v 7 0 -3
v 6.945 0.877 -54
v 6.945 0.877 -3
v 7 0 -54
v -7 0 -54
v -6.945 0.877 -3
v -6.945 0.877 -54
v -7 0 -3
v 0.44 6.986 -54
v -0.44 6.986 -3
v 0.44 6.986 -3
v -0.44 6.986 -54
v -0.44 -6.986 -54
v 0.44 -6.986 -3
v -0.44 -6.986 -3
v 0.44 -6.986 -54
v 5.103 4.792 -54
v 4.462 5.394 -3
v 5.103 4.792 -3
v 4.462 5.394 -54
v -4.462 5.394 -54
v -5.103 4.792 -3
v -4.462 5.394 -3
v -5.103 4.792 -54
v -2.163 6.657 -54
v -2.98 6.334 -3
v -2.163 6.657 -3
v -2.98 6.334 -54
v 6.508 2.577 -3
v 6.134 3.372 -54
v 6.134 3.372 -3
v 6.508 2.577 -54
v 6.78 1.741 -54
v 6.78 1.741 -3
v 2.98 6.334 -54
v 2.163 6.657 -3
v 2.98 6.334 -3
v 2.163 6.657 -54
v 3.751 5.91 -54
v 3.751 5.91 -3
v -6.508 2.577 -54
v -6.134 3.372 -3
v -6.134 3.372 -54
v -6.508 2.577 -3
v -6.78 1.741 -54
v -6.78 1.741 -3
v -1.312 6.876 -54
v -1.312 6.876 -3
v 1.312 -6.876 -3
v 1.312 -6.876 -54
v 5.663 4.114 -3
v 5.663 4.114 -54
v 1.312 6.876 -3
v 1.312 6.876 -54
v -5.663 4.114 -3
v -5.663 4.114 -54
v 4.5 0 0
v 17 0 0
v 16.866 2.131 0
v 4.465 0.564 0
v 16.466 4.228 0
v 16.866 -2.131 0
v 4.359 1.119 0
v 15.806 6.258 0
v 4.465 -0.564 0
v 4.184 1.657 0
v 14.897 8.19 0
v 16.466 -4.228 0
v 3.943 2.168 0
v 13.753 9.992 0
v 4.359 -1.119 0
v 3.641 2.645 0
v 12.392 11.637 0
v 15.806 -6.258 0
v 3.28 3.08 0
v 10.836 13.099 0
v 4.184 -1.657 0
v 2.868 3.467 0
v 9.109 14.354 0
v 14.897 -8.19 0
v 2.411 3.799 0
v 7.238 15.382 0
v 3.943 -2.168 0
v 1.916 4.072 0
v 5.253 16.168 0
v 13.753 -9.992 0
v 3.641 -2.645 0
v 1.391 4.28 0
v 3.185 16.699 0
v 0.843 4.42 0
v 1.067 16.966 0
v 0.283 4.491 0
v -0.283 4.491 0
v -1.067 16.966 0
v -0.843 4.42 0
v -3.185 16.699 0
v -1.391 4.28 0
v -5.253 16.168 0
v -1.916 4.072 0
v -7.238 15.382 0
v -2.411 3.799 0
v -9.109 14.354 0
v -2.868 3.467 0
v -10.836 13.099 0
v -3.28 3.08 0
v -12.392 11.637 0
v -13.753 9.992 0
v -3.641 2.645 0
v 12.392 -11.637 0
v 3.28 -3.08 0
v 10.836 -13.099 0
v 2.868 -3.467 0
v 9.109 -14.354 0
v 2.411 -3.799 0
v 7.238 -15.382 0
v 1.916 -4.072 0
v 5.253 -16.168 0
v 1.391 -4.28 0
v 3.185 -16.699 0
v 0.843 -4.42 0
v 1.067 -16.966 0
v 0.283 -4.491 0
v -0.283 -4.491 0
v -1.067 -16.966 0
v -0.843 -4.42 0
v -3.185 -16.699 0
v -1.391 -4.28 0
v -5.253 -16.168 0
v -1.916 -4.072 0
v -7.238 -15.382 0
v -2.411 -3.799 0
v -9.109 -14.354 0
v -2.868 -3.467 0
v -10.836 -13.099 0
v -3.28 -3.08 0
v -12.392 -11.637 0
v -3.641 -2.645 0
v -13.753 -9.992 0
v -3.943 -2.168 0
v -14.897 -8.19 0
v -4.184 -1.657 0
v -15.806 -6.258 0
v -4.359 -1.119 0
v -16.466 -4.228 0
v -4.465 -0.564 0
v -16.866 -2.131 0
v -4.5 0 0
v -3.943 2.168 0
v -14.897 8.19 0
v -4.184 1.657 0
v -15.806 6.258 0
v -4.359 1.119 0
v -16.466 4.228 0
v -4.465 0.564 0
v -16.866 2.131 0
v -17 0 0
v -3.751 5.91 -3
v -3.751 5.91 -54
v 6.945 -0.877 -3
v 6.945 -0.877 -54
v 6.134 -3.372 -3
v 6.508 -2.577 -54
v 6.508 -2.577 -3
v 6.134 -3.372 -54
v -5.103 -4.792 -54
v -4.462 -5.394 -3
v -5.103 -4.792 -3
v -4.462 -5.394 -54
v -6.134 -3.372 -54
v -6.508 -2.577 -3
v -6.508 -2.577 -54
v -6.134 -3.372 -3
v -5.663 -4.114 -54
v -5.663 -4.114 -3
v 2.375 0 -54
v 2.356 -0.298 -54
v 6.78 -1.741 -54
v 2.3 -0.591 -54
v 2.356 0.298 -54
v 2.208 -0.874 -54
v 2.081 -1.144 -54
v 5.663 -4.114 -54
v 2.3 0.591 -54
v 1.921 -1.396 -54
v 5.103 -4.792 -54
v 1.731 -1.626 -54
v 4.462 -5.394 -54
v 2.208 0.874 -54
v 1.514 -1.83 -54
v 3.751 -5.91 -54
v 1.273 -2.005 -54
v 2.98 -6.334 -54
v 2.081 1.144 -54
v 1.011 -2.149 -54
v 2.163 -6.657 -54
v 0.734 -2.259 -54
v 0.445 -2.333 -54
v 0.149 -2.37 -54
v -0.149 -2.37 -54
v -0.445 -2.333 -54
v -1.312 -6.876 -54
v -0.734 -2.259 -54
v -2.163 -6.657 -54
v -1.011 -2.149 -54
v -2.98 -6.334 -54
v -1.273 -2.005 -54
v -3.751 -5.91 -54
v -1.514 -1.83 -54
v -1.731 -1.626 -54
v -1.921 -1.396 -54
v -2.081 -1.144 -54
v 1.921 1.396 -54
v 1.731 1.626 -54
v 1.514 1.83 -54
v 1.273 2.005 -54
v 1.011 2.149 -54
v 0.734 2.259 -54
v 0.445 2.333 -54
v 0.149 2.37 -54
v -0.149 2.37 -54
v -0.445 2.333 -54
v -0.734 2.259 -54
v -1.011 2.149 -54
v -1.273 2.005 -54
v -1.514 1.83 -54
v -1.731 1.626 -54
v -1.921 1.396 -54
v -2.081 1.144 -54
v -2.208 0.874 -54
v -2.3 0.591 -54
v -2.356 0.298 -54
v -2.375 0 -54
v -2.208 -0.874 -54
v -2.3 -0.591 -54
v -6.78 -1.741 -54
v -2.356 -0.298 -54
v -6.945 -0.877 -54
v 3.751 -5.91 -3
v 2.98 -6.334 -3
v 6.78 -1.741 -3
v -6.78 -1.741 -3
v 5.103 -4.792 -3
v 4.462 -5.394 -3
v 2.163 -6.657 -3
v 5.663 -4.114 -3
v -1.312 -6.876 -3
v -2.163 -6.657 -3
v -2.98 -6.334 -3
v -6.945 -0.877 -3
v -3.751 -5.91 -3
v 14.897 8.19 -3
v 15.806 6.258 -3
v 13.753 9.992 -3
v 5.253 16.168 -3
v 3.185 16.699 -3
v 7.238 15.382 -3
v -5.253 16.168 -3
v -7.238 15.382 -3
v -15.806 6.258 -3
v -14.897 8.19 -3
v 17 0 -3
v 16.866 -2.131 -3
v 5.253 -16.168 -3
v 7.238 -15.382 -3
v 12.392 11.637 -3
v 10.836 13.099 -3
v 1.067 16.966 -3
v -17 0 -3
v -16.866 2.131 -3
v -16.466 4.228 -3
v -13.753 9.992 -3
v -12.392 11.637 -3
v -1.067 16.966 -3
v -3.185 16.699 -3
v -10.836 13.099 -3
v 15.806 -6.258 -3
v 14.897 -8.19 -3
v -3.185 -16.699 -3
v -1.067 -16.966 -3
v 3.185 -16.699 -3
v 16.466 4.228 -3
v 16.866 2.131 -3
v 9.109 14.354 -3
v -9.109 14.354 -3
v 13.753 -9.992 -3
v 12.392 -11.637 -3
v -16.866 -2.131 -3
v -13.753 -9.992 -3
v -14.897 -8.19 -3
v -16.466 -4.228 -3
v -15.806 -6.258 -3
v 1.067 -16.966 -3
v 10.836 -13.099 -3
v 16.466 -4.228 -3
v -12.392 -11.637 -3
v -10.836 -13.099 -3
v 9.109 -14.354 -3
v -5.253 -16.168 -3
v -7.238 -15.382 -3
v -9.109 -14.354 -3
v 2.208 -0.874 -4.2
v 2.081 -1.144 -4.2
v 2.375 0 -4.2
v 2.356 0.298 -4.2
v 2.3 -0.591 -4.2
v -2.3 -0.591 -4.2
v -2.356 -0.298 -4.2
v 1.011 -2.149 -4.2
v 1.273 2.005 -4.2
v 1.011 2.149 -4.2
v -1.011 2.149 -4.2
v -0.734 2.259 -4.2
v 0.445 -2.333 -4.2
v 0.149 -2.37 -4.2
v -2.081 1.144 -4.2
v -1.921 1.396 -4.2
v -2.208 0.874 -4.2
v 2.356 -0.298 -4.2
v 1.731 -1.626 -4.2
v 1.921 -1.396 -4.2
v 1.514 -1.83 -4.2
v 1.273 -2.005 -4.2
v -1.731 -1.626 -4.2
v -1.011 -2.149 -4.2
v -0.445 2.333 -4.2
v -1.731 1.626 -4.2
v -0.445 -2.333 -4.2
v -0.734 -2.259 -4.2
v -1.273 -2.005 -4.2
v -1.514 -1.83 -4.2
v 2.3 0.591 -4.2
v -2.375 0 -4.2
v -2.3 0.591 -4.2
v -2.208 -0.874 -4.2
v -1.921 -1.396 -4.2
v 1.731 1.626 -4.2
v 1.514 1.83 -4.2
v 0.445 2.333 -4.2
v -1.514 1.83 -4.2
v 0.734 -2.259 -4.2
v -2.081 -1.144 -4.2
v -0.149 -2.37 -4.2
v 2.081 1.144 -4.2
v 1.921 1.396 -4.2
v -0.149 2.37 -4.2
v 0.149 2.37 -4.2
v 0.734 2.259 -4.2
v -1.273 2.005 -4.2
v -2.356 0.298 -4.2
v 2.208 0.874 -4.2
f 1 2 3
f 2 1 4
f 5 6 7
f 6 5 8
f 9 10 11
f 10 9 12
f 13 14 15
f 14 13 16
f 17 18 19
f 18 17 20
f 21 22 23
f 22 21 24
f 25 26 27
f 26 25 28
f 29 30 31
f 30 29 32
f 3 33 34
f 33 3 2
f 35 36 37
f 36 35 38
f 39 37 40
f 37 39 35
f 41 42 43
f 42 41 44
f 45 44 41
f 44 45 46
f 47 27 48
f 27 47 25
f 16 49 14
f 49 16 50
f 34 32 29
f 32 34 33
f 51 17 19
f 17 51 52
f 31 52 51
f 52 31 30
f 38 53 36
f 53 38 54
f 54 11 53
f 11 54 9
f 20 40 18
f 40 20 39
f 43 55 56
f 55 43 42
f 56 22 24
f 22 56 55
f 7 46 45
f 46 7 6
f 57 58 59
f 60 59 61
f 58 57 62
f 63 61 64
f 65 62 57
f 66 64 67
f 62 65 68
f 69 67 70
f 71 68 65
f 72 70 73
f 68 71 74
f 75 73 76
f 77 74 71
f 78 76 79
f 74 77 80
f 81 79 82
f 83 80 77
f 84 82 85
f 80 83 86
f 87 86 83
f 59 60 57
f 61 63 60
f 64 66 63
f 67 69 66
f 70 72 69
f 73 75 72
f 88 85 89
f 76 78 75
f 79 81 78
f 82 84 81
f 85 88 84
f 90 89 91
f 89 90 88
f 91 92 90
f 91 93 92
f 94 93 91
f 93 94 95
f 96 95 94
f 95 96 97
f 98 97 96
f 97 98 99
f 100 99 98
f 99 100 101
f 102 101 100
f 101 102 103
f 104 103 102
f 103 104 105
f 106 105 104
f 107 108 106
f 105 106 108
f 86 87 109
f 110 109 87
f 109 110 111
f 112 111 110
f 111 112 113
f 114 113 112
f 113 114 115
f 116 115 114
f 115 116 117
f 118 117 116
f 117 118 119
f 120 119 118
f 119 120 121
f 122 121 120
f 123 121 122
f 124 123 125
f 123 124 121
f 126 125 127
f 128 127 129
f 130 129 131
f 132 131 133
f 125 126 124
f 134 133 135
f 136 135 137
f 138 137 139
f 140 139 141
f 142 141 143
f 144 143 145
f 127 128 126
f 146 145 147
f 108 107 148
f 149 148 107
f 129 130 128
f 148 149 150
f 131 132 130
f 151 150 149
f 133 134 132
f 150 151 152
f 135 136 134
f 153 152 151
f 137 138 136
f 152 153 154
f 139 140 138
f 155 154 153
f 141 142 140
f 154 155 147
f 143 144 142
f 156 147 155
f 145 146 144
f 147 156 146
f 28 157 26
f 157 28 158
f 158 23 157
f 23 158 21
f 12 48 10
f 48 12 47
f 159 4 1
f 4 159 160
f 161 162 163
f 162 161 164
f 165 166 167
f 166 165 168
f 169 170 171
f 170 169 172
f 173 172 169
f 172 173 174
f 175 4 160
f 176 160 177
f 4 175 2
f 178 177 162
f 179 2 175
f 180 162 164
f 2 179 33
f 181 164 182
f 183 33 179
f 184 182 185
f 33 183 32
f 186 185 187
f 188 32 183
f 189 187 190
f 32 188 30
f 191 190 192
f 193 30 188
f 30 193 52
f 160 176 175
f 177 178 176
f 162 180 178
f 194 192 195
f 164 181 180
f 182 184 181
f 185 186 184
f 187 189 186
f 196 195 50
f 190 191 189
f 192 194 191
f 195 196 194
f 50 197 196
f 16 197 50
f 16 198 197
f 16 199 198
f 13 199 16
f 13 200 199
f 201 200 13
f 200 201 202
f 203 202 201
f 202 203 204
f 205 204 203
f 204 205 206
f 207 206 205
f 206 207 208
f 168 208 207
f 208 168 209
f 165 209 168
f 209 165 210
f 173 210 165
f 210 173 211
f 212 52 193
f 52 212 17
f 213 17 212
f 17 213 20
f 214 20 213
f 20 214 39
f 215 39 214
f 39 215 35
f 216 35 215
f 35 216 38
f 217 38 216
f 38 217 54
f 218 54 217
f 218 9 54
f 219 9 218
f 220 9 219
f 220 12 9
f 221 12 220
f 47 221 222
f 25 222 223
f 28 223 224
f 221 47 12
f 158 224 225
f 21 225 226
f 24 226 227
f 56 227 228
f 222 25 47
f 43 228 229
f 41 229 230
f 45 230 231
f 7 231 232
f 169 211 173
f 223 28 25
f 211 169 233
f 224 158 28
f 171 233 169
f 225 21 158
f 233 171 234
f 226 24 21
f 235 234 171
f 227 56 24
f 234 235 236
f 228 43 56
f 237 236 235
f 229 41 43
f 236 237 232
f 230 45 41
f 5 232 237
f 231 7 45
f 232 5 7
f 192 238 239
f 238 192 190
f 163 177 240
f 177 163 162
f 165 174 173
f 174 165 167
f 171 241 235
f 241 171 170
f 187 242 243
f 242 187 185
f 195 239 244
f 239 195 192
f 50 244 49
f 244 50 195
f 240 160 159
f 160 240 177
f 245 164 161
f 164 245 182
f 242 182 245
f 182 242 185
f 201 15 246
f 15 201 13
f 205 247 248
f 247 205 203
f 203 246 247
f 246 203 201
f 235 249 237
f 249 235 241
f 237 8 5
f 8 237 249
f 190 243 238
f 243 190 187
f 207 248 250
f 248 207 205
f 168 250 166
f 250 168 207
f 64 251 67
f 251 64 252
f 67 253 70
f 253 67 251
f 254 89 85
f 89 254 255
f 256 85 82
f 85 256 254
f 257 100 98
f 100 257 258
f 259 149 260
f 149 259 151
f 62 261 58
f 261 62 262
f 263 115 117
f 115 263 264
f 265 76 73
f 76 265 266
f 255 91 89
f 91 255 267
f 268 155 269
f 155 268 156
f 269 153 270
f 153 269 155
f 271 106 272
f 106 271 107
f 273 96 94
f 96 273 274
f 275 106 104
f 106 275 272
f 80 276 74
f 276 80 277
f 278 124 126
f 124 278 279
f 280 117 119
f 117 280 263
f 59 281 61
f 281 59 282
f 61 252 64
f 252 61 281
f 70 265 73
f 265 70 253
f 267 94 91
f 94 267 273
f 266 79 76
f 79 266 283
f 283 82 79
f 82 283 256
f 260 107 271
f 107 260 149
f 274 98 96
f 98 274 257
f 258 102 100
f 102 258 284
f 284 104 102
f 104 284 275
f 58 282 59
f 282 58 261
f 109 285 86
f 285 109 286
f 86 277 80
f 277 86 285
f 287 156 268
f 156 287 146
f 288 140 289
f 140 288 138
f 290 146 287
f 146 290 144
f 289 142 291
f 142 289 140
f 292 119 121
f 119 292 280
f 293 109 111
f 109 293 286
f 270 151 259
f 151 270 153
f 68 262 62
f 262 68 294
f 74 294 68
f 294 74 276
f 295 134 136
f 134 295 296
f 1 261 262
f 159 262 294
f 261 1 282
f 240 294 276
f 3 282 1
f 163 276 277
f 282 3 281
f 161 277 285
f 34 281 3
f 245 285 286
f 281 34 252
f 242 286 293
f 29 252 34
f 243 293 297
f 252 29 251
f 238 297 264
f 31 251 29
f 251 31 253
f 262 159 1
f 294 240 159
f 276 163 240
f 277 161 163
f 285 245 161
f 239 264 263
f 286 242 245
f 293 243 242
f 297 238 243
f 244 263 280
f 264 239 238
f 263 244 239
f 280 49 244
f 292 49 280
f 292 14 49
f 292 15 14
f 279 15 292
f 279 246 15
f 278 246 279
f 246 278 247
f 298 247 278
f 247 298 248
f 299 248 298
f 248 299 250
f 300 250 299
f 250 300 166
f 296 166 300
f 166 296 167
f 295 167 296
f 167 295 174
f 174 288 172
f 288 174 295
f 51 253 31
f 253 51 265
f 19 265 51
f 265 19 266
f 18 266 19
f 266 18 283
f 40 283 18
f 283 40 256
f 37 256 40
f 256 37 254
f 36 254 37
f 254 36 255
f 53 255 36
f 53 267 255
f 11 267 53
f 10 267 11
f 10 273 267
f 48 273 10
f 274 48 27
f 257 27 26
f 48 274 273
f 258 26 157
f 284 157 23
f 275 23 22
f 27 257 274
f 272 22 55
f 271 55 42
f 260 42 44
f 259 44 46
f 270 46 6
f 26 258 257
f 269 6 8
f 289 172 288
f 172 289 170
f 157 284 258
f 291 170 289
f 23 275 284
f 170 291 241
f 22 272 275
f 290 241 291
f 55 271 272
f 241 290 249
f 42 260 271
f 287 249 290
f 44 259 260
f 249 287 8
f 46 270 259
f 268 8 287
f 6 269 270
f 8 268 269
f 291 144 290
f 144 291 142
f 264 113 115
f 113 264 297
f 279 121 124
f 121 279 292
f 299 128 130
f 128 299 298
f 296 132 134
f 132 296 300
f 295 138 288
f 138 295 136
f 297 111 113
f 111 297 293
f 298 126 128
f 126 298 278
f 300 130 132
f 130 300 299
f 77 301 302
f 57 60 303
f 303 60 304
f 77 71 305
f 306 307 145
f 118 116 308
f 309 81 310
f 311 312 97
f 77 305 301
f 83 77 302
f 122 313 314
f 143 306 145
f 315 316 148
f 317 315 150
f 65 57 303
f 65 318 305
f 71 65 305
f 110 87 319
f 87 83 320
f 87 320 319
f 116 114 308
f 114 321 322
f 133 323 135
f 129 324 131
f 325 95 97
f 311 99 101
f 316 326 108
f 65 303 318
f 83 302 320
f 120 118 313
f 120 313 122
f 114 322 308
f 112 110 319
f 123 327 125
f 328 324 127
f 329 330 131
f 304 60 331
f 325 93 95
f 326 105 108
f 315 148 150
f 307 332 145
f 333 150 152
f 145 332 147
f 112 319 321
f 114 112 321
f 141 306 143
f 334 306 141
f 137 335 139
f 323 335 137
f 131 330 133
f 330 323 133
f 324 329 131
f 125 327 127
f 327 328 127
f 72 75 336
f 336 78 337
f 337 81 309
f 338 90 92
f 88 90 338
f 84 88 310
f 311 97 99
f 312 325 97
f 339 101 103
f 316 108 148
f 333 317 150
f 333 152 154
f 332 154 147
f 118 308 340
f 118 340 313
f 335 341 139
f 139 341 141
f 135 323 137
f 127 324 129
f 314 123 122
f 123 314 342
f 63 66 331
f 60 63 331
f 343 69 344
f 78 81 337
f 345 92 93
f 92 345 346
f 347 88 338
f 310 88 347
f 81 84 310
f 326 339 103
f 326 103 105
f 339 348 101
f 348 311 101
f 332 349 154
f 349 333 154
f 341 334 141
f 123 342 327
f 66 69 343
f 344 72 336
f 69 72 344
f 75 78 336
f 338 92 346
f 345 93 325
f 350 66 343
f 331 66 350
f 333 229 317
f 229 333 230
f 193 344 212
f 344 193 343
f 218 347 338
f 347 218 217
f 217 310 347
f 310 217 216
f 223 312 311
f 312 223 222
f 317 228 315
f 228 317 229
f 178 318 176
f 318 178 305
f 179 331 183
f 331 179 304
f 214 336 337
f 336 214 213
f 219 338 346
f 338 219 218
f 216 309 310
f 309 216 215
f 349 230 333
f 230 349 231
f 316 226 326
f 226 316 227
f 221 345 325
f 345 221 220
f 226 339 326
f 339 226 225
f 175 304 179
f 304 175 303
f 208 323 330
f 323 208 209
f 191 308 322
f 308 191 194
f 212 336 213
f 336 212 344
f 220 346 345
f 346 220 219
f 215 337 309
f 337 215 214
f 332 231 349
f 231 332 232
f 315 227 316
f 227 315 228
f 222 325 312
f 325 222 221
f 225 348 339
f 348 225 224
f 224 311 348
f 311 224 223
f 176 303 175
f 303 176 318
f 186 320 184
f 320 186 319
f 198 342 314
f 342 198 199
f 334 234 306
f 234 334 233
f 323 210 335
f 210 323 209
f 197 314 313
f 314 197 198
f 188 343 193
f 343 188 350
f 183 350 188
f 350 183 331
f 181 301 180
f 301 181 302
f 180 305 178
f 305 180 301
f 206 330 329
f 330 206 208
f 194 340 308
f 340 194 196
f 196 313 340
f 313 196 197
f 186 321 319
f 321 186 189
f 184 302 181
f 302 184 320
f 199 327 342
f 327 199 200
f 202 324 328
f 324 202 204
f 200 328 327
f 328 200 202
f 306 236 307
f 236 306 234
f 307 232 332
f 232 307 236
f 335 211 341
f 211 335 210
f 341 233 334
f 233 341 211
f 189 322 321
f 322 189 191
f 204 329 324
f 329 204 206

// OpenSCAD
$fn = 50;


difference() {
	union() {
		translate(v = [0, 0, -54.0000000000]) {
			cylinder(h = 54, r = 7.0000000000);
		}
		translate(v = [0, 0, -3.0000000000]) {
			cylinder(h = 3, r = 17.0000000000);
		}
	}
	union() {
		translate(v = [0, 0, 0]) {
			rotate(a = [0, 0, 0]) {
				difference() {
					union() {
						#translate(v = [0, 0, -54.0000000000]) {
							cylinder(h = 54, r = 2.2500000000);
						}
						#translate(v = [0, 0, -4.2000000000]) {
							cylinder(h = 4.2000000000, r = 7.0000000000, r1 = 2.3750000000, r2 = 4.5000000000);
						}
						#translate(v = [0, 0, -54.0000000000]) {
							cylinder(h = 54, r = 2.3750000000);
						}
						#translate(v = [0, 0, -54.0000000000]) {
							cylinder(h = 54, r = 2.2500000000);
						}
					}
					union();
				}
			}
		}
	}
}
